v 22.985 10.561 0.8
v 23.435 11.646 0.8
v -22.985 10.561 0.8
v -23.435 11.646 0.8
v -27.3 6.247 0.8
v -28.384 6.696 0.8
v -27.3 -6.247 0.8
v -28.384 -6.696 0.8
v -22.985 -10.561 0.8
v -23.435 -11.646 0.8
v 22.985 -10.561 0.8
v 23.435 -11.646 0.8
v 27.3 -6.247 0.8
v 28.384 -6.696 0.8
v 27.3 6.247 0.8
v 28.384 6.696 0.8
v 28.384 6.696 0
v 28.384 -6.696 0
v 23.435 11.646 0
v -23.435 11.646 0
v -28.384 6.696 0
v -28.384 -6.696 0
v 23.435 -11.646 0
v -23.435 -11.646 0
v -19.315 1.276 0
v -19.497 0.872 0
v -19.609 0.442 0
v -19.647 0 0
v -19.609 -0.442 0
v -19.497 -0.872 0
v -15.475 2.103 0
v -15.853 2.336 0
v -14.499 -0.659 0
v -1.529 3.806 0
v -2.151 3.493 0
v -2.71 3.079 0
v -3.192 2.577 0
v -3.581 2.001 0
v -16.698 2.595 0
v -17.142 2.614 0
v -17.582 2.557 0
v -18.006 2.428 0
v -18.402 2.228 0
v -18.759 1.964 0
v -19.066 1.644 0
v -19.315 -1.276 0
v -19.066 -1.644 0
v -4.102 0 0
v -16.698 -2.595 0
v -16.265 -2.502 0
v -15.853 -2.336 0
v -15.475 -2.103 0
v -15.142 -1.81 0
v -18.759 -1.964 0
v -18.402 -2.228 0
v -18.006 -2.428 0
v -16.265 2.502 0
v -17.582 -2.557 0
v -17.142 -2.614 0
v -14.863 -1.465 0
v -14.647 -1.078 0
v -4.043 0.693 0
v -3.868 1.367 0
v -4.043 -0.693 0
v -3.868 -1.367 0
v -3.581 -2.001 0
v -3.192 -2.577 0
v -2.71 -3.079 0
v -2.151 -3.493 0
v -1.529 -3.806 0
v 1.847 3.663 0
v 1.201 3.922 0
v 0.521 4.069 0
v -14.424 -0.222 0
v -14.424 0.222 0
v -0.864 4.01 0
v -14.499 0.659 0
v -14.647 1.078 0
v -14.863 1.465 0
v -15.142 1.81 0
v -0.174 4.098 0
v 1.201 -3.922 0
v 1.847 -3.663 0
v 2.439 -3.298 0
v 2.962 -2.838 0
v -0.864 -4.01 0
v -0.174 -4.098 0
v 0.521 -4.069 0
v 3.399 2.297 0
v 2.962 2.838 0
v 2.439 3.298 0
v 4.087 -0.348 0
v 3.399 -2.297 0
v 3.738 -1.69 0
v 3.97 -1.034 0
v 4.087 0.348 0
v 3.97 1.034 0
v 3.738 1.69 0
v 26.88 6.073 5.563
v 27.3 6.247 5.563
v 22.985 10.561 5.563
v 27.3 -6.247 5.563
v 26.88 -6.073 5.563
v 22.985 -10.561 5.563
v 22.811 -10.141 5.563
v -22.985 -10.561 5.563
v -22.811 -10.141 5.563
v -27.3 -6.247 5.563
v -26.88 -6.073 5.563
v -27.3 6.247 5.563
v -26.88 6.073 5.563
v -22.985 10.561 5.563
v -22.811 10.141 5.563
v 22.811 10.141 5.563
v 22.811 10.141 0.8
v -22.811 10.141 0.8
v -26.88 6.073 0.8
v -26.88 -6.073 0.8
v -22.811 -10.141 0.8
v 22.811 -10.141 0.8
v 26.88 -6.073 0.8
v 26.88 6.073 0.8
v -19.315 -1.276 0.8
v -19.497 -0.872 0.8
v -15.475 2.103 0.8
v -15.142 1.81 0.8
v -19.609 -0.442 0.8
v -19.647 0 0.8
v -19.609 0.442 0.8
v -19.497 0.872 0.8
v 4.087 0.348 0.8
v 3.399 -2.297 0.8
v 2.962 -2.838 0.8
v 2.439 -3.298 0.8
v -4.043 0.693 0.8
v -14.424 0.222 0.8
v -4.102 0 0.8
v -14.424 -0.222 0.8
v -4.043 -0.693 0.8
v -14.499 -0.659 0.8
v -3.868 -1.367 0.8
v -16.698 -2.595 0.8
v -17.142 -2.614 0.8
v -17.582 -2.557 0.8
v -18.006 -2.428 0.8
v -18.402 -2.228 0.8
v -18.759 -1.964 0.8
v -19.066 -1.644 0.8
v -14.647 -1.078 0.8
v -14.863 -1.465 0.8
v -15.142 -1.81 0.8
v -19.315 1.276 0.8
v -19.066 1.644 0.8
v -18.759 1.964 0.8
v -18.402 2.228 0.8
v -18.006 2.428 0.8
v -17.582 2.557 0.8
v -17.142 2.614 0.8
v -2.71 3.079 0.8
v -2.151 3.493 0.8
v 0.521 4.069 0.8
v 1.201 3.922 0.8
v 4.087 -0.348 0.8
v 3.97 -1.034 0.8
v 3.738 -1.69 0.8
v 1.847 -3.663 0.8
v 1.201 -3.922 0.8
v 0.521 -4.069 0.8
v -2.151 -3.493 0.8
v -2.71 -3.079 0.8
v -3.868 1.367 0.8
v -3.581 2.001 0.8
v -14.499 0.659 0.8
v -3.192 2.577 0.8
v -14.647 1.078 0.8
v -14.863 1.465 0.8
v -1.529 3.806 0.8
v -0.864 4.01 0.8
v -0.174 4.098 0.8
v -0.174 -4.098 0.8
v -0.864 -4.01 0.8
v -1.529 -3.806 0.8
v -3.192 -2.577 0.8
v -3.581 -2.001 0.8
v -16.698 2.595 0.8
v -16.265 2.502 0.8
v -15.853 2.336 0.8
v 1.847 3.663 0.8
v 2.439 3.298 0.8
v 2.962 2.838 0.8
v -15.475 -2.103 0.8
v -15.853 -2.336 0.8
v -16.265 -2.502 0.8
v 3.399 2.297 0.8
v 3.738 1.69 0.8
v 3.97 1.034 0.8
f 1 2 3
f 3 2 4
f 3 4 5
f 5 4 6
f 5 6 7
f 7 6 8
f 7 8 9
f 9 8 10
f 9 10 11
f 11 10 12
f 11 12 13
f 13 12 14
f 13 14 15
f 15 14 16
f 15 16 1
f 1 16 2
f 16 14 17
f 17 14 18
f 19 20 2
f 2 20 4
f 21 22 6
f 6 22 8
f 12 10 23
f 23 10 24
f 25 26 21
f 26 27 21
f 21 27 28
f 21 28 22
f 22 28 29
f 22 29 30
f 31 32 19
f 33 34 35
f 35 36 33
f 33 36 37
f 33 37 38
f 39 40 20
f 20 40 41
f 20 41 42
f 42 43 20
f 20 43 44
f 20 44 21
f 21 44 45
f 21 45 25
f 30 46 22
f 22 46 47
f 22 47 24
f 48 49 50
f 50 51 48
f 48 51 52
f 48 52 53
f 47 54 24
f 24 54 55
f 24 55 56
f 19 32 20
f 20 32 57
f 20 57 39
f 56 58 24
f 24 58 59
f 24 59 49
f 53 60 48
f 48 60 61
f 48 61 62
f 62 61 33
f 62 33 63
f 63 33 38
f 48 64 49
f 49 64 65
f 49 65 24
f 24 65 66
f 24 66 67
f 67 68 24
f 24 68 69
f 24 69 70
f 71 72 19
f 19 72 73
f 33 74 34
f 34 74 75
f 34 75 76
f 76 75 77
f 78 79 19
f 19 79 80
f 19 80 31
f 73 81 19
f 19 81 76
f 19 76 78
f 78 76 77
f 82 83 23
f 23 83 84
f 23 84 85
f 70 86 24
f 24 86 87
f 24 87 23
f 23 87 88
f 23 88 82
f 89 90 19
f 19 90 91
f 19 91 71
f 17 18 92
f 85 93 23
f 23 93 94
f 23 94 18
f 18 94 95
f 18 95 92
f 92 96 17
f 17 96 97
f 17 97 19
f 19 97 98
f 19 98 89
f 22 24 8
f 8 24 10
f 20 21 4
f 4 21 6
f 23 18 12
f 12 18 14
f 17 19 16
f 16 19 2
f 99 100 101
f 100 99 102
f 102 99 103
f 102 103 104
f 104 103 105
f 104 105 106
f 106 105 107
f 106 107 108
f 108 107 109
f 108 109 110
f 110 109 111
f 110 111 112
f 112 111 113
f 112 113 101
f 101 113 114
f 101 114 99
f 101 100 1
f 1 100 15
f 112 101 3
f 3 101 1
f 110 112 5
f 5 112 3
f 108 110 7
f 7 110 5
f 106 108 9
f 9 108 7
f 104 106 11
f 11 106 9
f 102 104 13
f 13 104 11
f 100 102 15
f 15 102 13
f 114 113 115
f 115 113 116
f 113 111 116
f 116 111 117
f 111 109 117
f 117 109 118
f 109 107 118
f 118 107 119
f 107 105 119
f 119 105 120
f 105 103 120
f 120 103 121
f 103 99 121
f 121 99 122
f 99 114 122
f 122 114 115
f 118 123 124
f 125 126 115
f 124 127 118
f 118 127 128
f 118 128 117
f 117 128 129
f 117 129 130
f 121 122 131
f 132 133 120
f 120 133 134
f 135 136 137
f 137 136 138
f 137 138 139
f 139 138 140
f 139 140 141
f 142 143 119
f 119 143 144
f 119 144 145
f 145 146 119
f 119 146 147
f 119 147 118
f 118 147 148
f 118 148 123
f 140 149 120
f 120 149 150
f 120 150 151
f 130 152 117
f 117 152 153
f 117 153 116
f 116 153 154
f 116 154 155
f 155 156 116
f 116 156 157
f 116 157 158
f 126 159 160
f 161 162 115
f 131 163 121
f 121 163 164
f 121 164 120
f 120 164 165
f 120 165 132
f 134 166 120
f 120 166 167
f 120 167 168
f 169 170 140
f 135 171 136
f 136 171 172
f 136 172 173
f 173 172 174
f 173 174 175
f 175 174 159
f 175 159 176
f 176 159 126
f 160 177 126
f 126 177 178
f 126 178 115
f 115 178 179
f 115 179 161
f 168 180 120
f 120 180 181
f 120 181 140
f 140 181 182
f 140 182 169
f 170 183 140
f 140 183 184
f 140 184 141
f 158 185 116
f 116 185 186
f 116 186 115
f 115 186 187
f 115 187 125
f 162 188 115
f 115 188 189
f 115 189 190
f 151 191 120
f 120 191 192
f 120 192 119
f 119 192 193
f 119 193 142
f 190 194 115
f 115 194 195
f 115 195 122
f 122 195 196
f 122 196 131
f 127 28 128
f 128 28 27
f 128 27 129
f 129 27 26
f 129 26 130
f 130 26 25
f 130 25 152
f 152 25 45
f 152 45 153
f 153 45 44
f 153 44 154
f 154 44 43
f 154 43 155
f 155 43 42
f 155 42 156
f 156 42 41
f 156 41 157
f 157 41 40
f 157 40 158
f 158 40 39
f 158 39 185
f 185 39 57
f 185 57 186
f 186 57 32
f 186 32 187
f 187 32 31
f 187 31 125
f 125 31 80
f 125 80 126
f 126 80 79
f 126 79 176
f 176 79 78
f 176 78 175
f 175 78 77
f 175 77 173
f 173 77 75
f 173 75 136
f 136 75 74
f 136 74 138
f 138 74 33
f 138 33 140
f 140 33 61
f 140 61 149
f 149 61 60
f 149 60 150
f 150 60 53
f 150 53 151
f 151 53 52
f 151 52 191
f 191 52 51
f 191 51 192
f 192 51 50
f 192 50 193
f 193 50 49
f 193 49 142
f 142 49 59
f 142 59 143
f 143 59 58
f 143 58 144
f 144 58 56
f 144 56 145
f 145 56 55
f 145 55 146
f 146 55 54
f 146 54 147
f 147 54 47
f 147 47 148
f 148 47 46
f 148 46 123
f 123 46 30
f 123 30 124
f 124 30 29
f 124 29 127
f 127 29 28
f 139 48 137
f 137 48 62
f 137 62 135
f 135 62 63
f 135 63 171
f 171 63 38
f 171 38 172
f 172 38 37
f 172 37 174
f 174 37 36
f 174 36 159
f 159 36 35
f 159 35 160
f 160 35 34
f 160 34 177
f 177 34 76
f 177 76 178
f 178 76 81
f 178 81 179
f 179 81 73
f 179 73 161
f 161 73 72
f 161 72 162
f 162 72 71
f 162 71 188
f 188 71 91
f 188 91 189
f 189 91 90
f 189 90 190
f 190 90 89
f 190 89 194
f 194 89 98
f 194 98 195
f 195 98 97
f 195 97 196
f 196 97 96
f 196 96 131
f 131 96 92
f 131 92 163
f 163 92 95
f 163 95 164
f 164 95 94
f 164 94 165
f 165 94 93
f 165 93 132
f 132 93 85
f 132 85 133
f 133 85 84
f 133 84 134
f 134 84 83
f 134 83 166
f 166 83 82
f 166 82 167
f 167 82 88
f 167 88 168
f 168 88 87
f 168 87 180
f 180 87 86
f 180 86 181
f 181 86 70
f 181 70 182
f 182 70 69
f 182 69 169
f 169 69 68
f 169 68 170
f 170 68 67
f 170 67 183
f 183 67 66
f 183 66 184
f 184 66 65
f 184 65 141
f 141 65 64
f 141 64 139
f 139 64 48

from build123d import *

# Parameters (mm, degrees)
SKETCH1_W           = 56.769
SKETCH1_H           = 23.2918
BOSS_EXTRUDE1_DEPTH = 0.8
CUT_EXTRUDE1_DEPTH  = 1.8
BOSS_EXTRUDE2_DEPTH = 4.7625
SKETCH4_R           = 2.6162
CUT_EXTRUDE2_DEPTH  = 2.54
SKETCH5_R           = 4.1021
CUT_EXTRUDE3_DEPTH  = 2.54


with BuildPart() as part:
    # Sketch1 → Boss-Extrude1 (new body)
    with BuildSketch(Plane.XY):
        Rectangle(SKETCH1_W, SKETCH1_H)
    extrude(amount=BOSS_EXTRUDE1_DEPTH)

    # Sketch2 → Cut-Extrude1 (cut, through all)
    with BuildSketch(Plane.XY.offset(0.8)):
        Polygon((-28.3845, -6.696152532), (-23.434752532, -11.6459), (-28.3845, -11.6459), align=None)
        Polygon((-28.3845, 6.696152532), (-23.434752532, 11.6459), (-28.3845, 11.6459), align=None)
        Polygon((23.434752532, -11.6459), (28.3845, -6.696152532), (28.3845, -11.6459), align=None)
        Polygon((23.434752532, 11.6459), (28.3845, 6.696152532), (28.3845, 11.6459), align=None)
    extrude(amount=-CUT_EXTRUDE1_DEPTH, mode=Mode.SUBTRACT)

    # Sketch3 → Boss-Extrude2 (add)
    with BuildSketch(Plane.XY.offset(0.8)):
        Polygon((22.985413706, 10.561100114), (-22.985413706, 10.561100114), (-27.299700114, 6.246813706), (-27.299700114, -6.246813706), (-22.985413706, -10.561100114), (22.985413706, -10.561100114), (27.299700114, -6.246813706), (27.299700114, 6.246813706), align=None)
        Polygon((-22.81144401, 10.141100114), (-26.879700114, 6.07284401), (-26.879700114, -6.07284401), (-22.81144401, -10.141100114), (22.81144401, -10.141100114), (26.879700114, -6.07284401), (26.879700114, 6.07284401), (22.81144401, 10.141100114), align=None, mode=Mode.SUBTRACT)
    extrude(amount=BOSS_EXTRUDE2_DEPTH)

    # Sketch4 → Cut-Extrude2 (cut)
    with BuildSketch(Plane(origin=(0, 0, 0), x_dir=(-1, 0, 0), z_dir=(0, 0, -1))):
        with Locations((17.0307, 0)):
            Circle(SKETCH4_R)
    extrude(amount=-CUT_EXTRUDE2_DEPTH, mode=Mode.SUBTRACT)

    # Sketch5 → Cut-Extrude3 (cut)
    with BuildSketch(Plane(origin=(0, 0, 0), x_dir=(-1, 0, 0), z_dir=(0, 0, -1))):
        Circle(SKETCH5_R)
    extrude(amount=-CUT_EXTRUDE3_DEPTH, mode=Mode.SUBTRACT)


solid = part.part
